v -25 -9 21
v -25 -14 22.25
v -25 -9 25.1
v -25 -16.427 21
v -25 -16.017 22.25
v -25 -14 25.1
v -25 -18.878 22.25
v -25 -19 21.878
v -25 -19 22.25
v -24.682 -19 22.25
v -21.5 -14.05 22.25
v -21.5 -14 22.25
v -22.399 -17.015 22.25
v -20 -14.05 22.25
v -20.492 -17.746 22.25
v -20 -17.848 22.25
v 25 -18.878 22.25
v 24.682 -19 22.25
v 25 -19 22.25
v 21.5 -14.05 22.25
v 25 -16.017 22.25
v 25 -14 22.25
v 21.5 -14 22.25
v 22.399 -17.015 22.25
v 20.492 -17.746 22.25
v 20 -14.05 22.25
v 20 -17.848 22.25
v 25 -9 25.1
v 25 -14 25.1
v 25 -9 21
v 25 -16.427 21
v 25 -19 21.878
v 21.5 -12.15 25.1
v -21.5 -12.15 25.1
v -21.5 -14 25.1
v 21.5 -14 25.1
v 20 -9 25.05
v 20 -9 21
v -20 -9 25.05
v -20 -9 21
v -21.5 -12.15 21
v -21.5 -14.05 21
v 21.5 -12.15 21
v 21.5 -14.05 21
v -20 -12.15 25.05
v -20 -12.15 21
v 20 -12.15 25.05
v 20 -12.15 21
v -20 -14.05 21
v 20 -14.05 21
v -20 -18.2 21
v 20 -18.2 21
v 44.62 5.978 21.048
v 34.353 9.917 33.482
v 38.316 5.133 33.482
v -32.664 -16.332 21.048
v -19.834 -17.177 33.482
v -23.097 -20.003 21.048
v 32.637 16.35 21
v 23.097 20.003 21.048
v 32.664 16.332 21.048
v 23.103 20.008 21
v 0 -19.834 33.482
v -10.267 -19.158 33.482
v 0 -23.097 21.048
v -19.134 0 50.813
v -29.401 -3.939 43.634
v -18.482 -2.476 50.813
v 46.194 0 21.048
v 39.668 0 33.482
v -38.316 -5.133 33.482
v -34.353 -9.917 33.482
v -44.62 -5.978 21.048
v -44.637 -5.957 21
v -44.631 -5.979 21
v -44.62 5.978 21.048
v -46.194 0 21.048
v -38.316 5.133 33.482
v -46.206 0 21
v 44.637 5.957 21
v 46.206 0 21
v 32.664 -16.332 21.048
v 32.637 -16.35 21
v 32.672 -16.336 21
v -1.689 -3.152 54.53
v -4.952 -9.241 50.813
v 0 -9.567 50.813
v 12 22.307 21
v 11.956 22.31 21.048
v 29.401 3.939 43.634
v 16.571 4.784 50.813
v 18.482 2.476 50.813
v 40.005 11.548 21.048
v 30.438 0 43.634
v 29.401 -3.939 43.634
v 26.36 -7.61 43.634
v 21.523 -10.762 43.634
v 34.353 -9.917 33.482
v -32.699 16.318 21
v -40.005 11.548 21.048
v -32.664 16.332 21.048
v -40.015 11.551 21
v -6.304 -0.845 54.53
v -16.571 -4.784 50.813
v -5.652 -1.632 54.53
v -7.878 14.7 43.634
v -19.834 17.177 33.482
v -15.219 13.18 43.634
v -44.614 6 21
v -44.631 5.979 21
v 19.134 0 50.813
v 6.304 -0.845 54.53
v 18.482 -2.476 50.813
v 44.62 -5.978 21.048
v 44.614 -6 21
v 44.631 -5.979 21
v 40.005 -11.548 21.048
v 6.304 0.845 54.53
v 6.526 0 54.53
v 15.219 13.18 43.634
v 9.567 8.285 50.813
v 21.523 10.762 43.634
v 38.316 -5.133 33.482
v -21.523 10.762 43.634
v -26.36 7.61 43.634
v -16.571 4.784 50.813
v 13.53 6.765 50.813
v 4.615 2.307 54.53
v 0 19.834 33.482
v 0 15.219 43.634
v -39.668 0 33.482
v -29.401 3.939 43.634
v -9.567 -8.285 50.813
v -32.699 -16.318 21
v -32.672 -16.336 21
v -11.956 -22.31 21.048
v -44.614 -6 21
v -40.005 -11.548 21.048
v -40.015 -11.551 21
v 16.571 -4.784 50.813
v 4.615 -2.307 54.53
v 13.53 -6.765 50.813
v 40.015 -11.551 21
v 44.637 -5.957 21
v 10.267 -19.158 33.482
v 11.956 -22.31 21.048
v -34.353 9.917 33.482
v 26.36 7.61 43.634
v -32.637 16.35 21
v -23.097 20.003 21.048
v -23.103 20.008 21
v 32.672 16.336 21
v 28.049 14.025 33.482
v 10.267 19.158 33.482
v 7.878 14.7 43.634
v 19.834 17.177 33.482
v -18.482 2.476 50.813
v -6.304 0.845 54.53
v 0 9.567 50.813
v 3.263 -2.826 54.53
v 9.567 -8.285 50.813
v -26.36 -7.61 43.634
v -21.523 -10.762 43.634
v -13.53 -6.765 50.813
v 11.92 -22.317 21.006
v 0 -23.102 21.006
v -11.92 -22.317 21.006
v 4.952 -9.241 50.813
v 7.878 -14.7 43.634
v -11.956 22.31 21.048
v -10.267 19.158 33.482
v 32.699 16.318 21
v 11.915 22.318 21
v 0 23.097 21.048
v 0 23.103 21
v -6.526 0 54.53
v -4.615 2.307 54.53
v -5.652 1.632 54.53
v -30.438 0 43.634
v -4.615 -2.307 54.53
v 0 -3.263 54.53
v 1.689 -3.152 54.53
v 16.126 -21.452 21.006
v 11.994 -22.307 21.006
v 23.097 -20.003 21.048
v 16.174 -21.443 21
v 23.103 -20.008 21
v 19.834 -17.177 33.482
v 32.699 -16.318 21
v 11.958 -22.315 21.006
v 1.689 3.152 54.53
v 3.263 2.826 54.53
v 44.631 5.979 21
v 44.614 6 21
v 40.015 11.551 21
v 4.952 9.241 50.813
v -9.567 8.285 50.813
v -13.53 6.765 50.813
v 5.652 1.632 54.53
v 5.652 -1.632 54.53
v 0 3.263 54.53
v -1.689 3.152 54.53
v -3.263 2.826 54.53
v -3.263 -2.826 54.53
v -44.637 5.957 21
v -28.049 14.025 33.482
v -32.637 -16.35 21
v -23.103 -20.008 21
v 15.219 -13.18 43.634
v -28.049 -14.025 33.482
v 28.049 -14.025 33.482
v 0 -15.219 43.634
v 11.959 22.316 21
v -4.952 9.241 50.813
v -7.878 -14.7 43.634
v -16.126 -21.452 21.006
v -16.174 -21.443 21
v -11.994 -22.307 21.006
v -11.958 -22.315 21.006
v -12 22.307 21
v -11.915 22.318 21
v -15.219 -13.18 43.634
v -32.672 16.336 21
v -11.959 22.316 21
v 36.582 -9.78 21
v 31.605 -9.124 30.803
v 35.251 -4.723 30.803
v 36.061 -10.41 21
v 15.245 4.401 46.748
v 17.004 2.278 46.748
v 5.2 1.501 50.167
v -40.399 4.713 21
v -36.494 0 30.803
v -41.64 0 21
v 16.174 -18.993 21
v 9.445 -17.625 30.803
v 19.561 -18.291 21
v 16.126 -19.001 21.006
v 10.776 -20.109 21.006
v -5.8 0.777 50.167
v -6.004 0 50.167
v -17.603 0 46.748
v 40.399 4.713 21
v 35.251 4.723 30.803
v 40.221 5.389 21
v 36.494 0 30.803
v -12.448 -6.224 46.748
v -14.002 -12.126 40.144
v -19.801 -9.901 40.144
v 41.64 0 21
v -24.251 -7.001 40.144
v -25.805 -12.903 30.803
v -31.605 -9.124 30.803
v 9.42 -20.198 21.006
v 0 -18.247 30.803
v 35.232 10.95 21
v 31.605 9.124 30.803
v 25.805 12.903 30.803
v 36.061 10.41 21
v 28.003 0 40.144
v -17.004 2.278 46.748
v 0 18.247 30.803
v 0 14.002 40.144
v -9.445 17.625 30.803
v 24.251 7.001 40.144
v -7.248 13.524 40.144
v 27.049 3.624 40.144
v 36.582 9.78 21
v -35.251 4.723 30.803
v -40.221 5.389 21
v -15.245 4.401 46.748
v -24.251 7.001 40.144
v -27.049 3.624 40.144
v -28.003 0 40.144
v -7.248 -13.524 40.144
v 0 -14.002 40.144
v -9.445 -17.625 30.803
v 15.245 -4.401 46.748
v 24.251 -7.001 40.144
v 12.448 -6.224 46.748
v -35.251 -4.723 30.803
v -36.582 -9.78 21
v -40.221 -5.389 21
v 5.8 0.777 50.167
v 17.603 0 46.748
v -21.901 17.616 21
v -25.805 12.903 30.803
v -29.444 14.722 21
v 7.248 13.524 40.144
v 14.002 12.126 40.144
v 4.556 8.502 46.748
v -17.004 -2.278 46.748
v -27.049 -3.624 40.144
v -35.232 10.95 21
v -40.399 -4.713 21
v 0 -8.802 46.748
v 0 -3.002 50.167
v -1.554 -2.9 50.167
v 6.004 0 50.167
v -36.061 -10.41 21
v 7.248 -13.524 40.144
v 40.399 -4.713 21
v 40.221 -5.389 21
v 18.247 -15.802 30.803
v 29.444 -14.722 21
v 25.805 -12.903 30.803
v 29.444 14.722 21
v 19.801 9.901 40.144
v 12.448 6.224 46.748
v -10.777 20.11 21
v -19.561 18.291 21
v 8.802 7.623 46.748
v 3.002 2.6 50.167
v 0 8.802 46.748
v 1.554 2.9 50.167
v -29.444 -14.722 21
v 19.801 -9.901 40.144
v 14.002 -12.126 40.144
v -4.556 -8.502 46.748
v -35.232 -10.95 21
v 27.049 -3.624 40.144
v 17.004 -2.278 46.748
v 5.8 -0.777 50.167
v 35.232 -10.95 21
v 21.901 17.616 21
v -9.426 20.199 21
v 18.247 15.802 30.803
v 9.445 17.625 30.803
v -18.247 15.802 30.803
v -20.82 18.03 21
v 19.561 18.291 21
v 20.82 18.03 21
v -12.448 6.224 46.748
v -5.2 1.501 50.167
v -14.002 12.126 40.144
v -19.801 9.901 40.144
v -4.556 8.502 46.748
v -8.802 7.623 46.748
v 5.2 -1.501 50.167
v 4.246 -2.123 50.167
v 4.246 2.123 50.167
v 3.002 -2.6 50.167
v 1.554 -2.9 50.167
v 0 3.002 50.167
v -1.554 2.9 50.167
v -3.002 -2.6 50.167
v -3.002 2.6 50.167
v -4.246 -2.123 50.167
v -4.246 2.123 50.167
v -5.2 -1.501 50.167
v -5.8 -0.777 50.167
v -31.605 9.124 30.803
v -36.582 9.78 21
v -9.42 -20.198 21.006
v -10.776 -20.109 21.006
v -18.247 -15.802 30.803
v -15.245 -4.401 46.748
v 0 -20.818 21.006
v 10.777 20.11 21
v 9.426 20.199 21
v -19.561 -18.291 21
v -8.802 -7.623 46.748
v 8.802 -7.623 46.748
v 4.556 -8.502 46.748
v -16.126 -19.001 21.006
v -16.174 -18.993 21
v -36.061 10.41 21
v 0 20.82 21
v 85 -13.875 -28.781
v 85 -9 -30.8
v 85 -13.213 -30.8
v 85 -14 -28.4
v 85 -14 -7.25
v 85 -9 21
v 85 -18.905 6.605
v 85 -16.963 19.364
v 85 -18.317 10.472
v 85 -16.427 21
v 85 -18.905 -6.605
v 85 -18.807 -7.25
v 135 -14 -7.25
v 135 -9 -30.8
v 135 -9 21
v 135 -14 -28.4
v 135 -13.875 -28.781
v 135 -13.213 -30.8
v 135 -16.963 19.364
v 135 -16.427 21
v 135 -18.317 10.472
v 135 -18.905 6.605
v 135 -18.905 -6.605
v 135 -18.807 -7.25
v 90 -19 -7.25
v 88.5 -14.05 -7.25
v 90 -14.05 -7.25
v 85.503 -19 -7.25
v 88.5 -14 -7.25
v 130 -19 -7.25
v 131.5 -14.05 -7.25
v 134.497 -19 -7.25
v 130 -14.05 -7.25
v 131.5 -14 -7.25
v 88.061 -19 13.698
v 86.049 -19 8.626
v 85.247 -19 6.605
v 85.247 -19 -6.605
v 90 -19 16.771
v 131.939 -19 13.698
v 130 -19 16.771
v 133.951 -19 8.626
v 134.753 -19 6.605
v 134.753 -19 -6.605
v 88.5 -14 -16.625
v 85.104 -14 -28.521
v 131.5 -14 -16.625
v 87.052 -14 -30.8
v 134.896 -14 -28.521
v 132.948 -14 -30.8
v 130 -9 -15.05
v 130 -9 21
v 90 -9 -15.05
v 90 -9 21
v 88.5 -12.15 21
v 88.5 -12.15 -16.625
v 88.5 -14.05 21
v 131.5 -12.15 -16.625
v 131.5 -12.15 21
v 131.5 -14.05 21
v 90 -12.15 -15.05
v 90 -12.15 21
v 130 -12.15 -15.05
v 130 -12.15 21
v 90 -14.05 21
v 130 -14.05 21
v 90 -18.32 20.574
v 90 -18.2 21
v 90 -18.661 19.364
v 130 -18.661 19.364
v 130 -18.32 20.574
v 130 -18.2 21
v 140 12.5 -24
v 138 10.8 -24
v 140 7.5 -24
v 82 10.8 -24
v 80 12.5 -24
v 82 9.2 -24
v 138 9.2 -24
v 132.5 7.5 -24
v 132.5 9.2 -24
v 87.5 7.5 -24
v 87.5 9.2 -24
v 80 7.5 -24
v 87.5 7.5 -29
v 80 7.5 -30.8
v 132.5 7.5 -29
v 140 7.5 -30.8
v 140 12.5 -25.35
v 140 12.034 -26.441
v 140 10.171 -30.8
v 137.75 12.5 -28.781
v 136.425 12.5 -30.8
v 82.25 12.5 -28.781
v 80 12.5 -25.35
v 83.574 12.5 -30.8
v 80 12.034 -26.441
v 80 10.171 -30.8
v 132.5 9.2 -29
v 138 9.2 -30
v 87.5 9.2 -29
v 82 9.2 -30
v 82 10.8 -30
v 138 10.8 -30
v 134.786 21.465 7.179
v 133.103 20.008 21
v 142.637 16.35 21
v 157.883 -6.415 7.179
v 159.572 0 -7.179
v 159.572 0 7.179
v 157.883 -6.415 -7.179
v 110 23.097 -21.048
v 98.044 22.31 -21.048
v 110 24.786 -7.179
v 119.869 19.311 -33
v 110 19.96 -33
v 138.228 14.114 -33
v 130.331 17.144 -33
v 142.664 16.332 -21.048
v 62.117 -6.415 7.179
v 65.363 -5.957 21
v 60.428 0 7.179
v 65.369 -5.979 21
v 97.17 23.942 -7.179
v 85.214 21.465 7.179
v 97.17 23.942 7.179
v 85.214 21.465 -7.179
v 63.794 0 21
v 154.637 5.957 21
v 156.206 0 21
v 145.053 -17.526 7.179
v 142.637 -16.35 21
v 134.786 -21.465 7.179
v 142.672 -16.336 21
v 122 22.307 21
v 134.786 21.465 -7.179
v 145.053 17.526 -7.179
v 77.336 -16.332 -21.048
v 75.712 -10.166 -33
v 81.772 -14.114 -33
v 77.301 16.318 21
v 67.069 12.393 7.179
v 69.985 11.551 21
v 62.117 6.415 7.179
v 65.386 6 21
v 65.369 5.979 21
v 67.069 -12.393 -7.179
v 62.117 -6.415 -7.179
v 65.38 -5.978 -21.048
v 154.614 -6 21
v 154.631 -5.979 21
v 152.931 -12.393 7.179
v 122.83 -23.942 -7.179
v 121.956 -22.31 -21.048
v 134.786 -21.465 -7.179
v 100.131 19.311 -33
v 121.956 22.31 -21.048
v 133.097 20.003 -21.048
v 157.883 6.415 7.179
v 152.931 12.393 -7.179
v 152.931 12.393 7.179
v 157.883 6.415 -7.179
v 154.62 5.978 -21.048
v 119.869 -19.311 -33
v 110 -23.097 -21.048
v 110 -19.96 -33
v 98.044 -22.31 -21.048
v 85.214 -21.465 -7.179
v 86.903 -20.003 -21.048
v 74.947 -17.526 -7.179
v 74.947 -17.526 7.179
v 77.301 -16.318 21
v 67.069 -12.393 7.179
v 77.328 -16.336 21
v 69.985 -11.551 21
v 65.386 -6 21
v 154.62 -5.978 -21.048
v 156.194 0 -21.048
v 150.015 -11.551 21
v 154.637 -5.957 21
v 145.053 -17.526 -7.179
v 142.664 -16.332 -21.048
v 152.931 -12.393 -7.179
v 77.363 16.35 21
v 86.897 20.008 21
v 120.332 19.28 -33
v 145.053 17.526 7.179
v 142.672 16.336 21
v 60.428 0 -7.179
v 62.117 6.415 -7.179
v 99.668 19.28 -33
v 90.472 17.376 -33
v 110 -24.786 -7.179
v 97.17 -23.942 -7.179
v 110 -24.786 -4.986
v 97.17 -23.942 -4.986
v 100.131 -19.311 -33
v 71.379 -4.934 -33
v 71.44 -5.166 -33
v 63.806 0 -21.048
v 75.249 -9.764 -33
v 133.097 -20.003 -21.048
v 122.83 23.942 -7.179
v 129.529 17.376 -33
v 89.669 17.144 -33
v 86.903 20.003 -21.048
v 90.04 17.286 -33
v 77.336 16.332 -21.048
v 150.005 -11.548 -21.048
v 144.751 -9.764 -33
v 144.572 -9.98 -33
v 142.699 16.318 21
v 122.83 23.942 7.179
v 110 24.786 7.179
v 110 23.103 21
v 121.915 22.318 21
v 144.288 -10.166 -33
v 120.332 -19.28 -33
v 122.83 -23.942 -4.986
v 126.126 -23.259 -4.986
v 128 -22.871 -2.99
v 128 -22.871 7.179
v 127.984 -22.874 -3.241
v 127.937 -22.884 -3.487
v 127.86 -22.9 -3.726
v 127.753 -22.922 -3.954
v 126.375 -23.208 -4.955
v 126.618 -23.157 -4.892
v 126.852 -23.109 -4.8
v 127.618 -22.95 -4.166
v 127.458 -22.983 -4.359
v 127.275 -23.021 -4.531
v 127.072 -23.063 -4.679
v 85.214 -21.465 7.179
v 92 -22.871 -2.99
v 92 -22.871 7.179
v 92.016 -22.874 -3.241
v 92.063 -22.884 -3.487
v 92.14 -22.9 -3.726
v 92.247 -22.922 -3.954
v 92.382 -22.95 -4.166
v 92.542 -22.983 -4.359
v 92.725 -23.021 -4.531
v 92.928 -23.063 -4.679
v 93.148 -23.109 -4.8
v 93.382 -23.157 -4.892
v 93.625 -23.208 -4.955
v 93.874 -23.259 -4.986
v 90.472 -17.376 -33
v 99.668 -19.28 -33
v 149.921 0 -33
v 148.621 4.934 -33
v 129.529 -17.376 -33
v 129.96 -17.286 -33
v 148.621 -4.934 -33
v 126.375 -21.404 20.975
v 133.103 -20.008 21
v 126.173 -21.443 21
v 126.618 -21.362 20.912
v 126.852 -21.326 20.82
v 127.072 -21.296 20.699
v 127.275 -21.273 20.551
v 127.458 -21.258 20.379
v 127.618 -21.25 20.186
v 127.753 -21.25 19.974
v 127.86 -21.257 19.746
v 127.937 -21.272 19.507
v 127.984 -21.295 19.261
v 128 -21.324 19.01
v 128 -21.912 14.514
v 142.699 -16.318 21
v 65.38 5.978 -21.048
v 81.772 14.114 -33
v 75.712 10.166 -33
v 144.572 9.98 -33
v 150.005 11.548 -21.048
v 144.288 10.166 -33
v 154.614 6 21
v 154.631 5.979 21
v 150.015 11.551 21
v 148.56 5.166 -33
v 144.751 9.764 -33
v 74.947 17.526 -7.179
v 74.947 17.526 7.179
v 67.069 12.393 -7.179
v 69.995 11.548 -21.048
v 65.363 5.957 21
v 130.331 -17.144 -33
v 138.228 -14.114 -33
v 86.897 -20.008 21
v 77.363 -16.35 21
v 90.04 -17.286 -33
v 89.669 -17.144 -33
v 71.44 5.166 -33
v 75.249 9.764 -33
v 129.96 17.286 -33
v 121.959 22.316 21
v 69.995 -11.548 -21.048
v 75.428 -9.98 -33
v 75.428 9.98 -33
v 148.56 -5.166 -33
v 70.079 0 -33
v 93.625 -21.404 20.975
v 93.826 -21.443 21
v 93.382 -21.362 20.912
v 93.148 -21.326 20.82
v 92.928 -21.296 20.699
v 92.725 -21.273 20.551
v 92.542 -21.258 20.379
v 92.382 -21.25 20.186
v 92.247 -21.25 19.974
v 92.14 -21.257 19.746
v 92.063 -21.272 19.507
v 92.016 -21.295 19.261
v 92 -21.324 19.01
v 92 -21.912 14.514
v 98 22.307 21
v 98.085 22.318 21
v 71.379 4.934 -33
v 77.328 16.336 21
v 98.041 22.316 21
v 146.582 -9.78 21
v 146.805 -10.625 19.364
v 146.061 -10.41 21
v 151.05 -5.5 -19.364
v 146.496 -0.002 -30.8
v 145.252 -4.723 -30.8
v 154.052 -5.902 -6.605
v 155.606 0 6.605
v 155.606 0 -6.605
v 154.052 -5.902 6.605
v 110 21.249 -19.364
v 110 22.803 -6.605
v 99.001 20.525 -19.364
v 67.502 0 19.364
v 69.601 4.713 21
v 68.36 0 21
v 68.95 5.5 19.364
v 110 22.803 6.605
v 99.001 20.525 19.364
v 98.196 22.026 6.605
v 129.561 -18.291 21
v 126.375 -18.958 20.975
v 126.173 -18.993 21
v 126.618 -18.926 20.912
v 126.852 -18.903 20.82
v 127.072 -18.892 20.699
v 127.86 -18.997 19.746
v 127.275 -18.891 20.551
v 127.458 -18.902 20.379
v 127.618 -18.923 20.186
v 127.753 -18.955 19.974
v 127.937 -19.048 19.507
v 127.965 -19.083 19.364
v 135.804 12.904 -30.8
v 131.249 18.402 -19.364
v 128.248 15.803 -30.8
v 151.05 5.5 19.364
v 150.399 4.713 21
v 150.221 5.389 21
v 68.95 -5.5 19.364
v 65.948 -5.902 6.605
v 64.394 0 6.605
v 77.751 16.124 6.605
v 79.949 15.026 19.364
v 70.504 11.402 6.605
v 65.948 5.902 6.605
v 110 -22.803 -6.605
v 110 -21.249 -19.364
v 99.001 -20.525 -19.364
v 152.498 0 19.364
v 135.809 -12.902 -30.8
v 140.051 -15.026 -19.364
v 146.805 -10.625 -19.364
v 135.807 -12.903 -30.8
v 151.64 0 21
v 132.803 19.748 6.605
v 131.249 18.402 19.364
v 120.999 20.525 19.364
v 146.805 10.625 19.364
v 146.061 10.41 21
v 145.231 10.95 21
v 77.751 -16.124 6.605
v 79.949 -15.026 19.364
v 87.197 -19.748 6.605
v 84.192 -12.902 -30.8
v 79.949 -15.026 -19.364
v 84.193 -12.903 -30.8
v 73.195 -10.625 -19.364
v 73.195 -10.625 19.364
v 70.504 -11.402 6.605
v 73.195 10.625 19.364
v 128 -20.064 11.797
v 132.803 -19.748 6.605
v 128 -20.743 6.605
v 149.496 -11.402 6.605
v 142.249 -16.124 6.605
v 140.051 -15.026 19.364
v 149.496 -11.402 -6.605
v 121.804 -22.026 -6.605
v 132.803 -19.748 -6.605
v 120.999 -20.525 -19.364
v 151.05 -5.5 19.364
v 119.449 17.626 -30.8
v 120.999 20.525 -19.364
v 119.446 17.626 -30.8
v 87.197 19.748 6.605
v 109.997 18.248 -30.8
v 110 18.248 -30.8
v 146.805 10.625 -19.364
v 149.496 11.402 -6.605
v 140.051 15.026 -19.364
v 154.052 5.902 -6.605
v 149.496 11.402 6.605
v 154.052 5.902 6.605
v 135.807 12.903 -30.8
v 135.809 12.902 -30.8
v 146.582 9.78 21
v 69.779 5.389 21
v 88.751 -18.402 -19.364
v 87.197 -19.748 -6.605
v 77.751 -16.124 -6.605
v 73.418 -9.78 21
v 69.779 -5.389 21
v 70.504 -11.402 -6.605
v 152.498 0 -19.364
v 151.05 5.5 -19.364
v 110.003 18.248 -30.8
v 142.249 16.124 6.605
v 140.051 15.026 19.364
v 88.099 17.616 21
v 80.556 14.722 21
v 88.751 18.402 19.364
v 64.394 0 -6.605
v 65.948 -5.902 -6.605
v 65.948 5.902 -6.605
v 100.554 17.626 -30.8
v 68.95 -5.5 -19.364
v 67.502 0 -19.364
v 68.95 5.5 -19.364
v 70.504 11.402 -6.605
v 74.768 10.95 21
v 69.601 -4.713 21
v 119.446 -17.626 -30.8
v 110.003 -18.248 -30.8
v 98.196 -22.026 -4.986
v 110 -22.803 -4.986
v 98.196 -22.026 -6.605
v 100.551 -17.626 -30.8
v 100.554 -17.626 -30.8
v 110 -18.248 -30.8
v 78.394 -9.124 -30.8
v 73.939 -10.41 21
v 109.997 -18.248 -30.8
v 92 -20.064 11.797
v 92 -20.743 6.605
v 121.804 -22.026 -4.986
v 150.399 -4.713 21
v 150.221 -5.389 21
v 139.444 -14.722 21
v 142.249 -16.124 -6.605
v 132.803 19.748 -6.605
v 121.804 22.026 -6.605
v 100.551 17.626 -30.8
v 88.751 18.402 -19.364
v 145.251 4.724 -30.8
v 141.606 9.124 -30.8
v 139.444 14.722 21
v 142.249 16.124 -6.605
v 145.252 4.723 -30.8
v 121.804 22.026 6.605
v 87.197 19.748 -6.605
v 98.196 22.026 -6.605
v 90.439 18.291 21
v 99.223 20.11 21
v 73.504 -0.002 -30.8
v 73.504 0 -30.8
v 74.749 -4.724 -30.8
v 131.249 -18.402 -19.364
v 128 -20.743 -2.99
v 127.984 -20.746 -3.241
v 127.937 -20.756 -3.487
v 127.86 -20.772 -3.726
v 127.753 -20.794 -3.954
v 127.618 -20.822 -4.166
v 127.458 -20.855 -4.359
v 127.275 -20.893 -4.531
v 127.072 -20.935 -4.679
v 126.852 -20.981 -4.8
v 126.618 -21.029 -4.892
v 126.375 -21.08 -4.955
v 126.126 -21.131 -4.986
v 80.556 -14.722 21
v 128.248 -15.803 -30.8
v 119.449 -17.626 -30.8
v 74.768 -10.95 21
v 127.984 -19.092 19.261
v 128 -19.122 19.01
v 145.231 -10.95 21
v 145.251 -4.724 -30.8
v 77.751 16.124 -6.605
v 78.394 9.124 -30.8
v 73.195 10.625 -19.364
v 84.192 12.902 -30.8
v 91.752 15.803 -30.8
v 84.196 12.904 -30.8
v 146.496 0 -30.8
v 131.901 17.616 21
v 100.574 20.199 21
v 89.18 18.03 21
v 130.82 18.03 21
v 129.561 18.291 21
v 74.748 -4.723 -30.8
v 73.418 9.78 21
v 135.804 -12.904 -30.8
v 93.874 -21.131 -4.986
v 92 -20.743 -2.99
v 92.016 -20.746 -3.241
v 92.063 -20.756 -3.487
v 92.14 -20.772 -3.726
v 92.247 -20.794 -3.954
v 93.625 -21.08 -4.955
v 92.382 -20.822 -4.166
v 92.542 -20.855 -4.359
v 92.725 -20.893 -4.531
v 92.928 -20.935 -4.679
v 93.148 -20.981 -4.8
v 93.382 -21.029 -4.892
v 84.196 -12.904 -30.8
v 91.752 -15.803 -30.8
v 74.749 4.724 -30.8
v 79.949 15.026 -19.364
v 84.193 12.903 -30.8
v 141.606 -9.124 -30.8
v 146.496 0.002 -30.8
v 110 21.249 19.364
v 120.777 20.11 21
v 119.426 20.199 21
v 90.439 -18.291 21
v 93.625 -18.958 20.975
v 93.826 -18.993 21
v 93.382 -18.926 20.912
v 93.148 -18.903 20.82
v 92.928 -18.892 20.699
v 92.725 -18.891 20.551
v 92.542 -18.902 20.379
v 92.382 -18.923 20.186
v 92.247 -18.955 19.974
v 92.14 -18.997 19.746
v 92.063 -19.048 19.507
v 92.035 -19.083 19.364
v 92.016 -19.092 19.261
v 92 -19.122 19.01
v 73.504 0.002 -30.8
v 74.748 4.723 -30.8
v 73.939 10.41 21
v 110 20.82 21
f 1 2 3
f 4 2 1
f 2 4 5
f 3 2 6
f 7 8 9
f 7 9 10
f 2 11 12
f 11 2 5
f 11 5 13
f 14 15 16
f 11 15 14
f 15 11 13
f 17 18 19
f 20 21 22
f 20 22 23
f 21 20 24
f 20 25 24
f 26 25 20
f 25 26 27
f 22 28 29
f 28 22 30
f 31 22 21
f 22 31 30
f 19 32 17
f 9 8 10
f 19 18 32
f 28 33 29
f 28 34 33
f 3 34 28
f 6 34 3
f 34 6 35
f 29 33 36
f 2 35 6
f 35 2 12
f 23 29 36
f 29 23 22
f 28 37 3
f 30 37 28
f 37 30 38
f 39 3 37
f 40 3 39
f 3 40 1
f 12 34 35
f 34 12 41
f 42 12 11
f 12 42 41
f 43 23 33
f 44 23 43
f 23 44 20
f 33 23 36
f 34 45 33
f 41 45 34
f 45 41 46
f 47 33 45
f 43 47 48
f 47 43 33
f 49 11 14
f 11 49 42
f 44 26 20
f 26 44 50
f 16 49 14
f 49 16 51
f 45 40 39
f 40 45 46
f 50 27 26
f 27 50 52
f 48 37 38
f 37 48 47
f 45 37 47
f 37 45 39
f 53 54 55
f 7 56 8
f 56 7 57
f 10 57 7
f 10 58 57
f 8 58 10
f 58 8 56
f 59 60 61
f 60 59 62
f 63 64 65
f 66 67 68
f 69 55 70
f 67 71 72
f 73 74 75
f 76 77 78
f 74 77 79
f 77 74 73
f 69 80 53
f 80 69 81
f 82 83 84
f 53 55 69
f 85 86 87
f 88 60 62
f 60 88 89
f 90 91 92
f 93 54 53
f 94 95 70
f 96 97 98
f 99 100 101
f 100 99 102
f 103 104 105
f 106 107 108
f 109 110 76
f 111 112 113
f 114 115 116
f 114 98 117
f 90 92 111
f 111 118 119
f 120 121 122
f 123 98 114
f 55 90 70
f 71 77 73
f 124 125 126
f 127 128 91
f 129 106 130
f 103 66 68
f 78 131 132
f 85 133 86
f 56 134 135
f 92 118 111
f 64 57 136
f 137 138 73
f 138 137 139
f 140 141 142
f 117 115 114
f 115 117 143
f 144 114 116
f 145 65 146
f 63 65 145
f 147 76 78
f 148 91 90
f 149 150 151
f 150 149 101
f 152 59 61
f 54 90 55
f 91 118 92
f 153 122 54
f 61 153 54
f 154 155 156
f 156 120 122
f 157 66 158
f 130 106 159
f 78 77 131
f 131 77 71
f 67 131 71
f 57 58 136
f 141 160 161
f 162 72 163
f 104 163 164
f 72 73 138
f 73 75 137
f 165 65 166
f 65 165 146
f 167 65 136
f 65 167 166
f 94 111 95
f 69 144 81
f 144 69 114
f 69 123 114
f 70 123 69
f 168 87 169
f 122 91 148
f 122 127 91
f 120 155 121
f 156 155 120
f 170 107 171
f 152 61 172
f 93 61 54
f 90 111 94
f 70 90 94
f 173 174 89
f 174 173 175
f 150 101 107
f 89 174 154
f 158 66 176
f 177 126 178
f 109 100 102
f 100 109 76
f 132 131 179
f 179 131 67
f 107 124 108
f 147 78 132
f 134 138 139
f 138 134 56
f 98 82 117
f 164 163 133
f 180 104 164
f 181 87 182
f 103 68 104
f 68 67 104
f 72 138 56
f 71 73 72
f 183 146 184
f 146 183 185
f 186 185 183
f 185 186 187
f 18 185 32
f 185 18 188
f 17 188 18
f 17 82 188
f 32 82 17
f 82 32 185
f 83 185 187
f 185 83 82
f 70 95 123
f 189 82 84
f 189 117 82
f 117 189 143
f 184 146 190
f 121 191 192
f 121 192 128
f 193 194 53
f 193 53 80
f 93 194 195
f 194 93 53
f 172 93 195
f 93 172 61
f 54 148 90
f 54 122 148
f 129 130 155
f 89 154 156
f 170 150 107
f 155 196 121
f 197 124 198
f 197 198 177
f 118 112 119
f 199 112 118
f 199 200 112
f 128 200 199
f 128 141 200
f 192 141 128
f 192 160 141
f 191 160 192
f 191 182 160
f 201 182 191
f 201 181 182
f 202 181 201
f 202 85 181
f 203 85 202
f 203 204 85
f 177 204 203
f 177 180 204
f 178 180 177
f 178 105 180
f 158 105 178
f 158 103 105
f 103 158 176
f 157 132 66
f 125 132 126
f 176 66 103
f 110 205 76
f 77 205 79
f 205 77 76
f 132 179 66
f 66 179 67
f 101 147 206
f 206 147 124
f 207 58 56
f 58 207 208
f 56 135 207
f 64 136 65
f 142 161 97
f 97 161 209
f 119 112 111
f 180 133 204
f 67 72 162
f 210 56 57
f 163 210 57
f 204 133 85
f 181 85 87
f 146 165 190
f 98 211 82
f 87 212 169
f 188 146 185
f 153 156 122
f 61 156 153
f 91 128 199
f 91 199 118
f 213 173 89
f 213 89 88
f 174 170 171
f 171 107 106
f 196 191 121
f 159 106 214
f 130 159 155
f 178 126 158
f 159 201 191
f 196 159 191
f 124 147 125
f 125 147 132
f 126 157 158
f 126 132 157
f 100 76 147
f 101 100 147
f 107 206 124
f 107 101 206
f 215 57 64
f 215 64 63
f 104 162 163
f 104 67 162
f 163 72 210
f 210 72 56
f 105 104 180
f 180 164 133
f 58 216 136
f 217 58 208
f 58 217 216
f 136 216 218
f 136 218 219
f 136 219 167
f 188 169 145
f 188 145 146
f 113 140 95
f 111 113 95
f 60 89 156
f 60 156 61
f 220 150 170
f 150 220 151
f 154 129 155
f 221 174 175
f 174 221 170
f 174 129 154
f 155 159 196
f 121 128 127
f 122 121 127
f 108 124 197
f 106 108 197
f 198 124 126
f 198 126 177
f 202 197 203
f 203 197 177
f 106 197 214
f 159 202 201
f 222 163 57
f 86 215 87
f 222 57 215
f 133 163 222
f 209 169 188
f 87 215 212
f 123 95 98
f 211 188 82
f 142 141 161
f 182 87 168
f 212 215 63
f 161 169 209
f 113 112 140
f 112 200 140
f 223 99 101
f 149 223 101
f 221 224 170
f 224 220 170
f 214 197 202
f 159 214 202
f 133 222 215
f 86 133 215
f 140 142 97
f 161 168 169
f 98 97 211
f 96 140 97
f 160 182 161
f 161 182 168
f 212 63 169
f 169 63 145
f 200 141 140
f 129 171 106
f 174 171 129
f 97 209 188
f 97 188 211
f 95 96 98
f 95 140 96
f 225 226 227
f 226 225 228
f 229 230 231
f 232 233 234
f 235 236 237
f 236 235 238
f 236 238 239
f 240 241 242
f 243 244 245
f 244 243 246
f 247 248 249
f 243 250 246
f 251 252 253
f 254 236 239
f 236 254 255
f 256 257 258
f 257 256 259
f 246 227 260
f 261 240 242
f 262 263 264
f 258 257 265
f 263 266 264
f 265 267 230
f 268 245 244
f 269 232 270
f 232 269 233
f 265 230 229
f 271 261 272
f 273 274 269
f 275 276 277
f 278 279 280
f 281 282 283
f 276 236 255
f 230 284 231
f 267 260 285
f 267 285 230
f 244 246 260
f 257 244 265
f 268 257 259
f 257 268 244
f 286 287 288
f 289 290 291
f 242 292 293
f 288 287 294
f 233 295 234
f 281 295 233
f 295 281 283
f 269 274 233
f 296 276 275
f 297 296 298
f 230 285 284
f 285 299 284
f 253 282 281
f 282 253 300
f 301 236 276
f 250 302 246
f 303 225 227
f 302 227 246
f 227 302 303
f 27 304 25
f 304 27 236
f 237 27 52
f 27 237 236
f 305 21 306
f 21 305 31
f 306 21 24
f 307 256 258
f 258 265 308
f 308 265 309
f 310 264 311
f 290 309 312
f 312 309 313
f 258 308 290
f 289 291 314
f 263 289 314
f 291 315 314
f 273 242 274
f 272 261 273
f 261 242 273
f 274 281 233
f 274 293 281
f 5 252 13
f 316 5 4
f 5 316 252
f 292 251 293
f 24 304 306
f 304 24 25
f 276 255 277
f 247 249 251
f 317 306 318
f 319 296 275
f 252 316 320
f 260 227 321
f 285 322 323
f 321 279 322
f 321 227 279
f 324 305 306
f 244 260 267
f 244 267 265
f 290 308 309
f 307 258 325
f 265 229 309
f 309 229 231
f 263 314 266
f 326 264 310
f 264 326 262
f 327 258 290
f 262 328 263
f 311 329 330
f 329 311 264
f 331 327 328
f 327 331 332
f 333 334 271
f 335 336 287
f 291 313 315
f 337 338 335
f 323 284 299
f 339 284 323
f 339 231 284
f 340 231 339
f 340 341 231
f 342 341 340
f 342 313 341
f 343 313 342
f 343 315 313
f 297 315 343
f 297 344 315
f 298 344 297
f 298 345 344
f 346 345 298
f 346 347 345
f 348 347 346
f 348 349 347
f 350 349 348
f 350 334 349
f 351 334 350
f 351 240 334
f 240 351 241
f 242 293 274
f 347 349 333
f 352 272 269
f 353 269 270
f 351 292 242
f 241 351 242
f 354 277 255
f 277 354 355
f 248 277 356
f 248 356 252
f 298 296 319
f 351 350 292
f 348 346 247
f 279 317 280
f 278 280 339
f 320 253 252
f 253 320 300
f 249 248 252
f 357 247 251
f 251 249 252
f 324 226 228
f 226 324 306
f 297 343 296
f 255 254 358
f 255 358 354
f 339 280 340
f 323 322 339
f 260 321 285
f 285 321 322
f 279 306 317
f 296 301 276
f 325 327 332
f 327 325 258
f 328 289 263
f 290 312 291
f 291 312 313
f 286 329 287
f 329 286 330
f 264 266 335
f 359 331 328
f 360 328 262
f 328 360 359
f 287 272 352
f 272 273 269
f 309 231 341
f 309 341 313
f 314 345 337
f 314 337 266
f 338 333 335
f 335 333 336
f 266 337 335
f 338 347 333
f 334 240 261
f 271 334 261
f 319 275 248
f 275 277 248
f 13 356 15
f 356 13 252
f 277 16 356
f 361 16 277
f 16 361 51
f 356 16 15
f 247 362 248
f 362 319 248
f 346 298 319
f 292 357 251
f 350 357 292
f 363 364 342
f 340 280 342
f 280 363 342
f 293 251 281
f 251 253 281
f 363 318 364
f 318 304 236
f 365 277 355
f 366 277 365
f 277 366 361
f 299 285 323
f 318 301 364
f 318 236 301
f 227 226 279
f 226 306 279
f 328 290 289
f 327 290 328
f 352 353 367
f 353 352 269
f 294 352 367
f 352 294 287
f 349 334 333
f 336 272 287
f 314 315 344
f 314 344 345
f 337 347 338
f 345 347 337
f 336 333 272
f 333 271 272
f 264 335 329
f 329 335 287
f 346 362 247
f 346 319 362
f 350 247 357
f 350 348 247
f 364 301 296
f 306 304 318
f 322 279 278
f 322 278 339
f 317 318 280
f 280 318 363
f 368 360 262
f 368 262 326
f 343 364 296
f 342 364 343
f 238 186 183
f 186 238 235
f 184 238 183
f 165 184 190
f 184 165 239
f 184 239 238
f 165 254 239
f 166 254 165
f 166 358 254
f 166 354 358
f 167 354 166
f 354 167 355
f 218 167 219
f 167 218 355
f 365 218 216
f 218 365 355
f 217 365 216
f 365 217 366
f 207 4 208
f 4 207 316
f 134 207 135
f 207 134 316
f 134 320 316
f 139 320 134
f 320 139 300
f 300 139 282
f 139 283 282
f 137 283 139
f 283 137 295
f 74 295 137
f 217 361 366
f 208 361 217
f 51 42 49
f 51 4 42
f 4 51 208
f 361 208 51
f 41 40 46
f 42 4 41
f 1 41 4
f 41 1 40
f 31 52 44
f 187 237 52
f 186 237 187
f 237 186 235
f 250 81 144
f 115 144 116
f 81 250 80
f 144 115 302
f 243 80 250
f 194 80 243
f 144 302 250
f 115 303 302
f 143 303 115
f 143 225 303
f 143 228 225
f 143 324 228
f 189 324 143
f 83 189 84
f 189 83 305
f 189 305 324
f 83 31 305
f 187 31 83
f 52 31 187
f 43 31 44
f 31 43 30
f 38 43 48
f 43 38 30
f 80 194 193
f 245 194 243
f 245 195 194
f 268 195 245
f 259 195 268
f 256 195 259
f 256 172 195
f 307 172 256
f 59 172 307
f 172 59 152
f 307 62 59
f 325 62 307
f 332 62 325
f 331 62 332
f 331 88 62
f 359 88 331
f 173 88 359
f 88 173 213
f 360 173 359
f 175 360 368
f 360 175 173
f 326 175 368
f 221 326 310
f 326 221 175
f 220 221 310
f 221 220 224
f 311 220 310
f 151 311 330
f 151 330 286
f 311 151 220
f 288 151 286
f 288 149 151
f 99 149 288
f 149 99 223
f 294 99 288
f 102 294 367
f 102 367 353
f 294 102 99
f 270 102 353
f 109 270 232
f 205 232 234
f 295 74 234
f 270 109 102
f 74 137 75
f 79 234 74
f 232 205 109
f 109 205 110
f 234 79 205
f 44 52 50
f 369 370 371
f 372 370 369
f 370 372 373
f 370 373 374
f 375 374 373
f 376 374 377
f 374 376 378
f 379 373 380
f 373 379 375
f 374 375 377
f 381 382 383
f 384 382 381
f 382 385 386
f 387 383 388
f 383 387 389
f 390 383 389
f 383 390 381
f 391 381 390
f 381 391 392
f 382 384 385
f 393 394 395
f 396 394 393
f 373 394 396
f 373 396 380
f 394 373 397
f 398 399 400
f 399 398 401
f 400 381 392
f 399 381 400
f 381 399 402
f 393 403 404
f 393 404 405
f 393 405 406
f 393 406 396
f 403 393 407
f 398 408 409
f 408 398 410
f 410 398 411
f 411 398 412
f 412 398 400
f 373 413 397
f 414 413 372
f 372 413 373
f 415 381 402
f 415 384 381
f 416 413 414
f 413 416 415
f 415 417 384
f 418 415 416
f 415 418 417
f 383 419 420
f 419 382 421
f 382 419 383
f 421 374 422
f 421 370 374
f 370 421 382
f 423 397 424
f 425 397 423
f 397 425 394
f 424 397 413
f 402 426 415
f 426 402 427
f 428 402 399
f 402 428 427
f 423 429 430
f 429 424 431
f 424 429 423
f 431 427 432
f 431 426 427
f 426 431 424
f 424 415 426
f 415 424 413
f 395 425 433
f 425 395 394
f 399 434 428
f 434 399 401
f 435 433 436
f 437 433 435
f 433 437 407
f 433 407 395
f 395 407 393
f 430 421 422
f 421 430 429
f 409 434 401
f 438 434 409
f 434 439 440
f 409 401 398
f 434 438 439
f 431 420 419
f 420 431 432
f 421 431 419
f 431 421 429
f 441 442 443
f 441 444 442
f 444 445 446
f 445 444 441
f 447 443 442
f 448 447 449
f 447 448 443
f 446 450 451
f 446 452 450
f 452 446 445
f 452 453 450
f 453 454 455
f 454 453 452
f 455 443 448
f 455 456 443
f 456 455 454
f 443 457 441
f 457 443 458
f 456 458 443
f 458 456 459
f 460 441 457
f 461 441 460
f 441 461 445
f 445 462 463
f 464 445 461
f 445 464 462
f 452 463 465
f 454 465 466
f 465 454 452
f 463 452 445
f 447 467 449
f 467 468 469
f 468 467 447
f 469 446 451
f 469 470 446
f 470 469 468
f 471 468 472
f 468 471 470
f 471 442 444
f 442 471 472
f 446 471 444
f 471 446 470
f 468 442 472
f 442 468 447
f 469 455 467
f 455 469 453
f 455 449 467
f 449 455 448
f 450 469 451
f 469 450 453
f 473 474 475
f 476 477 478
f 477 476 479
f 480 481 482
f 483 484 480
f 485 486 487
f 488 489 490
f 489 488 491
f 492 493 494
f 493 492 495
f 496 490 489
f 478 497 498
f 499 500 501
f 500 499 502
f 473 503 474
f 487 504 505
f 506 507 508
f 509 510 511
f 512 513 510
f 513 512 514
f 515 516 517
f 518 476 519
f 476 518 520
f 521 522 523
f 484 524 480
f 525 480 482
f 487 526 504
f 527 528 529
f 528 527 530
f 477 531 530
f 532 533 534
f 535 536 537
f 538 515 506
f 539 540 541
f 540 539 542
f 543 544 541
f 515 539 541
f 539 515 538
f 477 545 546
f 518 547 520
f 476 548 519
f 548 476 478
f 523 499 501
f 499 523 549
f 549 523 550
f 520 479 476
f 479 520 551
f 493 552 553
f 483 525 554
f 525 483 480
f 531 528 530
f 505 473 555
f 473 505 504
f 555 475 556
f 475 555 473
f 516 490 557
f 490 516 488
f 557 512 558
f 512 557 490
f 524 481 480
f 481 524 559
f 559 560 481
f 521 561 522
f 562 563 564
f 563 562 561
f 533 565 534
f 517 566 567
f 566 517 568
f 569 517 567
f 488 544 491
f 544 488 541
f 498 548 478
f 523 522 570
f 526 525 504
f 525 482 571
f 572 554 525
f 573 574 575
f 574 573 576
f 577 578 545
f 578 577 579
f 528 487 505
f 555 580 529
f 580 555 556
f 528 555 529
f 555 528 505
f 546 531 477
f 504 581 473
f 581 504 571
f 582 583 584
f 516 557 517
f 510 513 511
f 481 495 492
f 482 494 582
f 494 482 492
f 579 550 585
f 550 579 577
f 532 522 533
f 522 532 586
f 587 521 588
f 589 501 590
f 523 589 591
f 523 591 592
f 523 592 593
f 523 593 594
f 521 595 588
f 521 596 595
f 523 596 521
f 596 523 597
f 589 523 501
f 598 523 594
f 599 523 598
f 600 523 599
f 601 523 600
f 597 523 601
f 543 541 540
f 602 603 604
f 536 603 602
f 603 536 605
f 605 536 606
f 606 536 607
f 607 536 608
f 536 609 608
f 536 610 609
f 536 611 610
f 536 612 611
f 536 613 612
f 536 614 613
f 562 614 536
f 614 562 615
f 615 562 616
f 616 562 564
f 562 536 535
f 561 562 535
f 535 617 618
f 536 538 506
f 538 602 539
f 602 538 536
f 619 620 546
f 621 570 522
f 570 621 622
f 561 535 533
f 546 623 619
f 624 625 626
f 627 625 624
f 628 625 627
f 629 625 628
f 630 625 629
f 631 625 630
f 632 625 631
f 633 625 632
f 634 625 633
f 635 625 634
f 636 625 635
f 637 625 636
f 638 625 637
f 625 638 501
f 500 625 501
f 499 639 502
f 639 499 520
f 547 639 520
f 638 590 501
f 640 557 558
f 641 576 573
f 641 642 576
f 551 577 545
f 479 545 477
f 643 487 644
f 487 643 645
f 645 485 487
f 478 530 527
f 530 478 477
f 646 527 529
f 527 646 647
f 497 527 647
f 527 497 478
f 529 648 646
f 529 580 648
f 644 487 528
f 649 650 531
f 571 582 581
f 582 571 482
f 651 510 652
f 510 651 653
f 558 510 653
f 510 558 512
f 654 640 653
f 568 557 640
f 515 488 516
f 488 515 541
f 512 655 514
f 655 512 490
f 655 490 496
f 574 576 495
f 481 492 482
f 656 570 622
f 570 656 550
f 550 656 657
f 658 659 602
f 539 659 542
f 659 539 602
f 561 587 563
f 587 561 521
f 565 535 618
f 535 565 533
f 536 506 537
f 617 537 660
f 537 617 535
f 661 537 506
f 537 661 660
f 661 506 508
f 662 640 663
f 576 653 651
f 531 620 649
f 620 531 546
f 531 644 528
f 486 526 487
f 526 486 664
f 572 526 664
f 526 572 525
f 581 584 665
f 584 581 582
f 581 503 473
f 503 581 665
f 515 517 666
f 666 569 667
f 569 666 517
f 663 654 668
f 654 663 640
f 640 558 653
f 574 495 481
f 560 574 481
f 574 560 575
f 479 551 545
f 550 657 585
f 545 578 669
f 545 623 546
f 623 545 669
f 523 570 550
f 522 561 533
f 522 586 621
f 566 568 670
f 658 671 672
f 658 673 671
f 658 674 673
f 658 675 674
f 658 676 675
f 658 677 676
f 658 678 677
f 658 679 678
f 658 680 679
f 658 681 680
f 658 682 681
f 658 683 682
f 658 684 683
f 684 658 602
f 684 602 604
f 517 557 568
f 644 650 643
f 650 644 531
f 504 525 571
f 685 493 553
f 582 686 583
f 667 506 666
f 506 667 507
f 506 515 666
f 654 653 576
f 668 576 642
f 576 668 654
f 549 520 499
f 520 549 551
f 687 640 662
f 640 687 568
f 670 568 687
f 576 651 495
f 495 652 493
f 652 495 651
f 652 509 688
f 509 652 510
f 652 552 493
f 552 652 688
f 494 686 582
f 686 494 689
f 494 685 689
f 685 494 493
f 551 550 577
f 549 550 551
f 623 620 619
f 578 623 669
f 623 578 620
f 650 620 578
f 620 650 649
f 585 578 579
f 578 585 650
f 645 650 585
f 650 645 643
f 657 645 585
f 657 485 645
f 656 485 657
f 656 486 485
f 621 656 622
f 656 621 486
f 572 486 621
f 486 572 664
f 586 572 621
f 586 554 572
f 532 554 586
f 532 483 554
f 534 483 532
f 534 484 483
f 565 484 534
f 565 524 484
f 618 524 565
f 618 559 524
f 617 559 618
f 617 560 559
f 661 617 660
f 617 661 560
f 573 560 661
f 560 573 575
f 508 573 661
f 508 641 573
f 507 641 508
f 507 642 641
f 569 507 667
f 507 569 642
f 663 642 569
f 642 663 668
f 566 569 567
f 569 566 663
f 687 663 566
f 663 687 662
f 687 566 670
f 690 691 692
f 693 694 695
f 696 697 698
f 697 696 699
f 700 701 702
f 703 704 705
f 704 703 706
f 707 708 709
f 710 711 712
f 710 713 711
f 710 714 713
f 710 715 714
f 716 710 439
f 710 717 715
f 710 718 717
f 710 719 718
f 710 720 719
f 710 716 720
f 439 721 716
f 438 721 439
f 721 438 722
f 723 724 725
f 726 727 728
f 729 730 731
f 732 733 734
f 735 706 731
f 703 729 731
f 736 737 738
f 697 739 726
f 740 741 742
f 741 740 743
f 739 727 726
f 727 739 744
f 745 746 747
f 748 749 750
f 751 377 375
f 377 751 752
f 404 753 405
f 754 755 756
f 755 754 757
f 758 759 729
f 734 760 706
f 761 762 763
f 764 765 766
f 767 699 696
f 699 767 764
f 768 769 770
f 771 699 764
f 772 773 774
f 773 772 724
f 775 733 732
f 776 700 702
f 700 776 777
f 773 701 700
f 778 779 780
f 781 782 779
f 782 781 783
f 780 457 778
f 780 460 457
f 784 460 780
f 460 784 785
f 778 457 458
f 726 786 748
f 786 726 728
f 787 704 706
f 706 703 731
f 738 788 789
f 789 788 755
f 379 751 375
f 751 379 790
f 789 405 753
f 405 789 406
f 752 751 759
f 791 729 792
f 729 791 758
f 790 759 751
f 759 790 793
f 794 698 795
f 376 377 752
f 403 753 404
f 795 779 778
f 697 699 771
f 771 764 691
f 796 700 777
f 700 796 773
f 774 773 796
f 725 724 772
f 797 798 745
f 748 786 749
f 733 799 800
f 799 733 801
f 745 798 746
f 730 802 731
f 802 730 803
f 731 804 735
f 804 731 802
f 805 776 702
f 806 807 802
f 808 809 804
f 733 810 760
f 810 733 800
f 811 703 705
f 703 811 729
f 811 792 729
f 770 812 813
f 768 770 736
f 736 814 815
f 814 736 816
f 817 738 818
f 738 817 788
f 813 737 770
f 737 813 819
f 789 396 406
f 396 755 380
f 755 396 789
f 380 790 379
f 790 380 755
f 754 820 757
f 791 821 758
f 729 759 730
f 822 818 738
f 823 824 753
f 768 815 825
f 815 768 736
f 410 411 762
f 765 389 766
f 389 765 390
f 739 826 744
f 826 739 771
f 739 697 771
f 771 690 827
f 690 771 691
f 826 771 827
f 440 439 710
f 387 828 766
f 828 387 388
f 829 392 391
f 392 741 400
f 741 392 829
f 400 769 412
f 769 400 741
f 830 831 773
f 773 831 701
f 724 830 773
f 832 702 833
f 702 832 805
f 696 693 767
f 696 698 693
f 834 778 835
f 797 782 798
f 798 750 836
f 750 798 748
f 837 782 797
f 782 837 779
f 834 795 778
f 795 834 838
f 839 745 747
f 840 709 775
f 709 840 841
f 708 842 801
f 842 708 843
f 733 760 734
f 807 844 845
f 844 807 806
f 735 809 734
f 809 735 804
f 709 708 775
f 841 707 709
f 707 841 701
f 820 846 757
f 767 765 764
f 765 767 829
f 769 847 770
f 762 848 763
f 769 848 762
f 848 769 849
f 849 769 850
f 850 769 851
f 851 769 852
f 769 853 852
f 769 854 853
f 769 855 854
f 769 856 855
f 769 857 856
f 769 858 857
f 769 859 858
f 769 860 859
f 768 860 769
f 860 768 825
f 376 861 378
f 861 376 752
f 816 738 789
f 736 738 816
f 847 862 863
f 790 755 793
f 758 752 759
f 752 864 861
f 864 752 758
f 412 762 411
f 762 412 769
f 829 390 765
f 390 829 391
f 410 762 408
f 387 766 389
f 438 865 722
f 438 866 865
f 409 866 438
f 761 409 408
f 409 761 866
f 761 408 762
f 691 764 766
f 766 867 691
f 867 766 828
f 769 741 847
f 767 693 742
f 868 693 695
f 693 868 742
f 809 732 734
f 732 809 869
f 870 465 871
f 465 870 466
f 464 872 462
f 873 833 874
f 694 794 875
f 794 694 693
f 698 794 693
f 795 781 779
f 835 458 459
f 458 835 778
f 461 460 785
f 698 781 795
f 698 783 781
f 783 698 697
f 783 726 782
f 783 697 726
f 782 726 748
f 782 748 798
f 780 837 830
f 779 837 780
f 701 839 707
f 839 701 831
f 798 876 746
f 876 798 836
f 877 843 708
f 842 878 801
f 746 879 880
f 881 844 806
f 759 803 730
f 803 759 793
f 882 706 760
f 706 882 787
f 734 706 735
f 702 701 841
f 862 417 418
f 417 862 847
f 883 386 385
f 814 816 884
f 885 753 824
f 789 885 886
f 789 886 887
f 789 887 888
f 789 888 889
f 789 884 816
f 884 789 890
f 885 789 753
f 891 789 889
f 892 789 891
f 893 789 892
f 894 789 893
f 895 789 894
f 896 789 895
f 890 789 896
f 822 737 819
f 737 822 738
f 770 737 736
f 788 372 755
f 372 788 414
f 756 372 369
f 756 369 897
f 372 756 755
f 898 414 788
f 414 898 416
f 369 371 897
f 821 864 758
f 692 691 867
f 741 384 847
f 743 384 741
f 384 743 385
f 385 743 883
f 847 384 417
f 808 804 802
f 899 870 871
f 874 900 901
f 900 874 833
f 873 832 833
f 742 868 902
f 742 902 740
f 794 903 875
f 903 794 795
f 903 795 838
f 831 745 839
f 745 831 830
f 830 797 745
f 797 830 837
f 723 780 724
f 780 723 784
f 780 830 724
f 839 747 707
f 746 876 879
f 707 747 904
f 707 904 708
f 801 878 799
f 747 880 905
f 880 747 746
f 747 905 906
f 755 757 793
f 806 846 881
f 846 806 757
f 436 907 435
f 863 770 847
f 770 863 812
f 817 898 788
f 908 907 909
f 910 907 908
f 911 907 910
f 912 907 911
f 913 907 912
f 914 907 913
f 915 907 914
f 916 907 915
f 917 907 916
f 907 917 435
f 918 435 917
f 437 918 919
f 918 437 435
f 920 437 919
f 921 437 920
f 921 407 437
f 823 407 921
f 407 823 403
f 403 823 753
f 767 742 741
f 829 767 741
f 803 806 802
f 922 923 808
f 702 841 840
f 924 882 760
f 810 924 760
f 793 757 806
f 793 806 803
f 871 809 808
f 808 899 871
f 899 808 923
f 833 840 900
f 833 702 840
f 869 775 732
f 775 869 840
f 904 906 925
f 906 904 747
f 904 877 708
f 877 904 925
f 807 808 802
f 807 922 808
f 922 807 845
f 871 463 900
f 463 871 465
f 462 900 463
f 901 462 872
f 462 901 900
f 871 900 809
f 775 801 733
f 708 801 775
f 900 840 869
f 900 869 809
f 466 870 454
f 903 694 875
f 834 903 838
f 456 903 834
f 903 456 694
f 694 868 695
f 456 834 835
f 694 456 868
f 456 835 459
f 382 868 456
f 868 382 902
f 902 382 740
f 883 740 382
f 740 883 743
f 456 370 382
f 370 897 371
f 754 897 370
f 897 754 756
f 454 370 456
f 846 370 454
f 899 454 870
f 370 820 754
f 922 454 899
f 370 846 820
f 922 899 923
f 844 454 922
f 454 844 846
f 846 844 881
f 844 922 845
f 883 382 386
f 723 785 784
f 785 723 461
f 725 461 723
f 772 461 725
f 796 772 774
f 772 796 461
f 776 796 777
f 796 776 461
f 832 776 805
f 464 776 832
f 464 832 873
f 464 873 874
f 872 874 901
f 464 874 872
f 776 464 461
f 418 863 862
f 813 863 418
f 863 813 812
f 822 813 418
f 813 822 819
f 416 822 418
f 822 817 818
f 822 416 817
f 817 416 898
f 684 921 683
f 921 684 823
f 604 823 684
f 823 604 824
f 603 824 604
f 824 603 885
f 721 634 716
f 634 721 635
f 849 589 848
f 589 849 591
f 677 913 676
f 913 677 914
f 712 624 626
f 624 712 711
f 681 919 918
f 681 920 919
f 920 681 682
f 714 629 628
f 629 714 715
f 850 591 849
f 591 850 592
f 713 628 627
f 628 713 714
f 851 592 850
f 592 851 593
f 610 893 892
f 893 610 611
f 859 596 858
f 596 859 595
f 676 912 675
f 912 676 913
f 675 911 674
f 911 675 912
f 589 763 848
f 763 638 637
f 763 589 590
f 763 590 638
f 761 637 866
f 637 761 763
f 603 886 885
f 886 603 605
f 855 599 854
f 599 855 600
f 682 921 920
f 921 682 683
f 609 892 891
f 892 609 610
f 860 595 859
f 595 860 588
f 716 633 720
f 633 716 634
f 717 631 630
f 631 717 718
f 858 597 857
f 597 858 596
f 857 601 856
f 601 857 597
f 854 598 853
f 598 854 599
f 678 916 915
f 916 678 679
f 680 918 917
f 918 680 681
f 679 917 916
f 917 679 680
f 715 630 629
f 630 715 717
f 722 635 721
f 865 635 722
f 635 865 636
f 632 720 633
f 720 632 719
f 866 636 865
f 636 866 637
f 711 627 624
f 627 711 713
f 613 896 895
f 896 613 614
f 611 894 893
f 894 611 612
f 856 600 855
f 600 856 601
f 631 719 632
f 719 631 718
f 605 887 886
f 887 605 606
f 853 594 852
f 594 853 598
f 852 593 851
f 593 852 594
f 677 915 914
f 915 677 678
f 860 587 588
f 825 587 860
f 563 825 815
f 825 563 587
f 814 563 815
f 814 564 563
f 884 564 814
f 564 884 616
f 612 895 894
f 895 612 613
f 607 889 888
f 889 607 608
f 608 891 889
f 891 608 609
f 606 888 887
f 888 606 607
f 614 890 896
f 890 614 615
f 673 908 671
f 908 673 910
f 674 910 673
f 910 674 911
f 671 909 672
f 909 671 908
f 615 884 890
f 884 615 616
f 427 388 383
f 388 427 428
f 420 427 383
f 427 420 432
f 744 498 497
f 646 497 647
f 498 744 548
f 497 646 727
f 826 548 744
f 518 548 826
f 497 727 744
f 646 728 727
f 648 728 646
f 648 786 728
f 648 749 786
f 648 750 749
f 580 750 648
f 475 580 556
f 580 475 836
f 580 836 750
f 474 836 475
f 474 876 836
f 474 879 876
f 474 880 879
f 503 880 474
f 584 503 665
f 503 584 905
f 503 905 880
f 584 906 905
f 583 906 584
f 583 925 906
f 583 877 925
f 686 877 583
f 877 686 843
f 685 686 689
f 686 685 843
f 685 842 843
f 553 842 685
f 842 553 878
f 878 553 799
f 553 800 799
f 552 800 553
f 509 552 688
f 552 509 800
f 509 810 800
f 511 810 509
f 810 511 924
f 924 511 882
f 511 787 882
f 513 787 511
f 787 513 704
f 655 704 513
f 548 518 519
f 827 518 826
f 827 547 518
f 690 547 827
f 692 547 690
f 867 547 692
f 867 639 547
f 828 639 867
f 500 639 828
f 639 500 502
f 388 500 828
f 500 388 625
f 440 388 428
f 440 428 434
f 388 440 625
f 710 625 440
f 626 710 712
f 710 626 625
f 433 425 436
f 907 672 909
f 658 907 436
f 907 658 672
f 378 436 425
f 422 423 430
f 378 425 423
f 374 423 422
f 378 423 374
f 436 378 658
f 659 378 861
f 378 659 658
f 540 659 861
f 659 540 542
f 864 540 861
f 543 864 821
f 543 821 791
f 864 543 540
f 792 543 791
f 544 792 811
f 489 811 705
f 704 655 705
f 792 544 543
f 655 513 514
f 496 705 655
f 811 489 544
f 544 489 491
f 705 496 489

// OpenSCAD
  
//emontx v2.2 circuit board measures
//63.3m width by 56mm high, 1.6mm thick
//we use in portrait format

/*
translate([0,10,2])
rotate([90,90,0]) 
union() {
color("green",0.25) 
cube(size = [63.3, 56, 1.6], center = true);
color("purple",0.25) 
translate([0,0,(18-1.6)/2])
cube(size = [63.3, 56, 18-1.6], center = true);
}
*/


module my_model() {

difference() {
    //egg shape around circuit board
    //chop bottom off egg but leave solid base
    color("red",0.2) scale([2.0,1.0,2.2]) difference() {

        //Outside the egg deliberately not smooth so you can see
        //the polygons
        difference() {
            sphere(r=25.0, $fa=15, $fs=0.1); 
            translate([-30,-30, -75]) cube([60,60,60], false); 
        }
        
          //Cut middle out of egg
        difference() {
            sphere(r=23.0, $fa=15, $fs=0.1); 
            translate([-30,-30, -74]) cube([60,60,60], false); 
        }        
        
}

    


//Chop of top
//translate([-55,-50, 21]) cube([110,110,100], false);       

//Hole for LCD screen with rounded corners
translate([0,-25,8.01]) 
    minkowski()
    {
       cube([32,15,22],true); 
       sphere(r=2,$fn=50);
    }
    
        
}//end of difference


 //LCD screen holder
translate([0,-20+5,5])
difference() {
    union(){
    translate([0,0,2.5]) cube(size = [50, 8, 29.5], center = true);

    translate([0,3.5,-9+0.1]) cube(size = [50, 5, 58], center = true);
    }

    translate([0,-1.1,0]) cube(size = [40, 15, 40.1], center = true);

    union() {
    translate([0,1.9,1]) color("green") cube(size = [43, 1.9, 45.25], center = true);
    //Actual size of metal surround on screen
    color("red") cube(size = [40, 0.1+4.5, 34.5], center = true);
    }
}


//PCB holder in base
color("red",1.0) 
translate([0,10,-28])
rotate([90,90,0]) 
difference() {
    cube(size = [8, 60, 5], center = true);
    translate([-2,0,0]) cube(size = [8, 56, 1.6], center = true);  
    translate([-2,0,3]) cube(size = [6, 45, 5], center = true);    
}
       

}

//Clone model and chop into two
translate([0,0,0])
difference() {
my_model();
translate([0,00,-29.0]) cube(size = [120, 120, 100], center = true);
}

translate([110,0,0])
difference() {
my_model();
translate([0,00,71.0]) cube(size = [120, 120, 100], center = true);
}
